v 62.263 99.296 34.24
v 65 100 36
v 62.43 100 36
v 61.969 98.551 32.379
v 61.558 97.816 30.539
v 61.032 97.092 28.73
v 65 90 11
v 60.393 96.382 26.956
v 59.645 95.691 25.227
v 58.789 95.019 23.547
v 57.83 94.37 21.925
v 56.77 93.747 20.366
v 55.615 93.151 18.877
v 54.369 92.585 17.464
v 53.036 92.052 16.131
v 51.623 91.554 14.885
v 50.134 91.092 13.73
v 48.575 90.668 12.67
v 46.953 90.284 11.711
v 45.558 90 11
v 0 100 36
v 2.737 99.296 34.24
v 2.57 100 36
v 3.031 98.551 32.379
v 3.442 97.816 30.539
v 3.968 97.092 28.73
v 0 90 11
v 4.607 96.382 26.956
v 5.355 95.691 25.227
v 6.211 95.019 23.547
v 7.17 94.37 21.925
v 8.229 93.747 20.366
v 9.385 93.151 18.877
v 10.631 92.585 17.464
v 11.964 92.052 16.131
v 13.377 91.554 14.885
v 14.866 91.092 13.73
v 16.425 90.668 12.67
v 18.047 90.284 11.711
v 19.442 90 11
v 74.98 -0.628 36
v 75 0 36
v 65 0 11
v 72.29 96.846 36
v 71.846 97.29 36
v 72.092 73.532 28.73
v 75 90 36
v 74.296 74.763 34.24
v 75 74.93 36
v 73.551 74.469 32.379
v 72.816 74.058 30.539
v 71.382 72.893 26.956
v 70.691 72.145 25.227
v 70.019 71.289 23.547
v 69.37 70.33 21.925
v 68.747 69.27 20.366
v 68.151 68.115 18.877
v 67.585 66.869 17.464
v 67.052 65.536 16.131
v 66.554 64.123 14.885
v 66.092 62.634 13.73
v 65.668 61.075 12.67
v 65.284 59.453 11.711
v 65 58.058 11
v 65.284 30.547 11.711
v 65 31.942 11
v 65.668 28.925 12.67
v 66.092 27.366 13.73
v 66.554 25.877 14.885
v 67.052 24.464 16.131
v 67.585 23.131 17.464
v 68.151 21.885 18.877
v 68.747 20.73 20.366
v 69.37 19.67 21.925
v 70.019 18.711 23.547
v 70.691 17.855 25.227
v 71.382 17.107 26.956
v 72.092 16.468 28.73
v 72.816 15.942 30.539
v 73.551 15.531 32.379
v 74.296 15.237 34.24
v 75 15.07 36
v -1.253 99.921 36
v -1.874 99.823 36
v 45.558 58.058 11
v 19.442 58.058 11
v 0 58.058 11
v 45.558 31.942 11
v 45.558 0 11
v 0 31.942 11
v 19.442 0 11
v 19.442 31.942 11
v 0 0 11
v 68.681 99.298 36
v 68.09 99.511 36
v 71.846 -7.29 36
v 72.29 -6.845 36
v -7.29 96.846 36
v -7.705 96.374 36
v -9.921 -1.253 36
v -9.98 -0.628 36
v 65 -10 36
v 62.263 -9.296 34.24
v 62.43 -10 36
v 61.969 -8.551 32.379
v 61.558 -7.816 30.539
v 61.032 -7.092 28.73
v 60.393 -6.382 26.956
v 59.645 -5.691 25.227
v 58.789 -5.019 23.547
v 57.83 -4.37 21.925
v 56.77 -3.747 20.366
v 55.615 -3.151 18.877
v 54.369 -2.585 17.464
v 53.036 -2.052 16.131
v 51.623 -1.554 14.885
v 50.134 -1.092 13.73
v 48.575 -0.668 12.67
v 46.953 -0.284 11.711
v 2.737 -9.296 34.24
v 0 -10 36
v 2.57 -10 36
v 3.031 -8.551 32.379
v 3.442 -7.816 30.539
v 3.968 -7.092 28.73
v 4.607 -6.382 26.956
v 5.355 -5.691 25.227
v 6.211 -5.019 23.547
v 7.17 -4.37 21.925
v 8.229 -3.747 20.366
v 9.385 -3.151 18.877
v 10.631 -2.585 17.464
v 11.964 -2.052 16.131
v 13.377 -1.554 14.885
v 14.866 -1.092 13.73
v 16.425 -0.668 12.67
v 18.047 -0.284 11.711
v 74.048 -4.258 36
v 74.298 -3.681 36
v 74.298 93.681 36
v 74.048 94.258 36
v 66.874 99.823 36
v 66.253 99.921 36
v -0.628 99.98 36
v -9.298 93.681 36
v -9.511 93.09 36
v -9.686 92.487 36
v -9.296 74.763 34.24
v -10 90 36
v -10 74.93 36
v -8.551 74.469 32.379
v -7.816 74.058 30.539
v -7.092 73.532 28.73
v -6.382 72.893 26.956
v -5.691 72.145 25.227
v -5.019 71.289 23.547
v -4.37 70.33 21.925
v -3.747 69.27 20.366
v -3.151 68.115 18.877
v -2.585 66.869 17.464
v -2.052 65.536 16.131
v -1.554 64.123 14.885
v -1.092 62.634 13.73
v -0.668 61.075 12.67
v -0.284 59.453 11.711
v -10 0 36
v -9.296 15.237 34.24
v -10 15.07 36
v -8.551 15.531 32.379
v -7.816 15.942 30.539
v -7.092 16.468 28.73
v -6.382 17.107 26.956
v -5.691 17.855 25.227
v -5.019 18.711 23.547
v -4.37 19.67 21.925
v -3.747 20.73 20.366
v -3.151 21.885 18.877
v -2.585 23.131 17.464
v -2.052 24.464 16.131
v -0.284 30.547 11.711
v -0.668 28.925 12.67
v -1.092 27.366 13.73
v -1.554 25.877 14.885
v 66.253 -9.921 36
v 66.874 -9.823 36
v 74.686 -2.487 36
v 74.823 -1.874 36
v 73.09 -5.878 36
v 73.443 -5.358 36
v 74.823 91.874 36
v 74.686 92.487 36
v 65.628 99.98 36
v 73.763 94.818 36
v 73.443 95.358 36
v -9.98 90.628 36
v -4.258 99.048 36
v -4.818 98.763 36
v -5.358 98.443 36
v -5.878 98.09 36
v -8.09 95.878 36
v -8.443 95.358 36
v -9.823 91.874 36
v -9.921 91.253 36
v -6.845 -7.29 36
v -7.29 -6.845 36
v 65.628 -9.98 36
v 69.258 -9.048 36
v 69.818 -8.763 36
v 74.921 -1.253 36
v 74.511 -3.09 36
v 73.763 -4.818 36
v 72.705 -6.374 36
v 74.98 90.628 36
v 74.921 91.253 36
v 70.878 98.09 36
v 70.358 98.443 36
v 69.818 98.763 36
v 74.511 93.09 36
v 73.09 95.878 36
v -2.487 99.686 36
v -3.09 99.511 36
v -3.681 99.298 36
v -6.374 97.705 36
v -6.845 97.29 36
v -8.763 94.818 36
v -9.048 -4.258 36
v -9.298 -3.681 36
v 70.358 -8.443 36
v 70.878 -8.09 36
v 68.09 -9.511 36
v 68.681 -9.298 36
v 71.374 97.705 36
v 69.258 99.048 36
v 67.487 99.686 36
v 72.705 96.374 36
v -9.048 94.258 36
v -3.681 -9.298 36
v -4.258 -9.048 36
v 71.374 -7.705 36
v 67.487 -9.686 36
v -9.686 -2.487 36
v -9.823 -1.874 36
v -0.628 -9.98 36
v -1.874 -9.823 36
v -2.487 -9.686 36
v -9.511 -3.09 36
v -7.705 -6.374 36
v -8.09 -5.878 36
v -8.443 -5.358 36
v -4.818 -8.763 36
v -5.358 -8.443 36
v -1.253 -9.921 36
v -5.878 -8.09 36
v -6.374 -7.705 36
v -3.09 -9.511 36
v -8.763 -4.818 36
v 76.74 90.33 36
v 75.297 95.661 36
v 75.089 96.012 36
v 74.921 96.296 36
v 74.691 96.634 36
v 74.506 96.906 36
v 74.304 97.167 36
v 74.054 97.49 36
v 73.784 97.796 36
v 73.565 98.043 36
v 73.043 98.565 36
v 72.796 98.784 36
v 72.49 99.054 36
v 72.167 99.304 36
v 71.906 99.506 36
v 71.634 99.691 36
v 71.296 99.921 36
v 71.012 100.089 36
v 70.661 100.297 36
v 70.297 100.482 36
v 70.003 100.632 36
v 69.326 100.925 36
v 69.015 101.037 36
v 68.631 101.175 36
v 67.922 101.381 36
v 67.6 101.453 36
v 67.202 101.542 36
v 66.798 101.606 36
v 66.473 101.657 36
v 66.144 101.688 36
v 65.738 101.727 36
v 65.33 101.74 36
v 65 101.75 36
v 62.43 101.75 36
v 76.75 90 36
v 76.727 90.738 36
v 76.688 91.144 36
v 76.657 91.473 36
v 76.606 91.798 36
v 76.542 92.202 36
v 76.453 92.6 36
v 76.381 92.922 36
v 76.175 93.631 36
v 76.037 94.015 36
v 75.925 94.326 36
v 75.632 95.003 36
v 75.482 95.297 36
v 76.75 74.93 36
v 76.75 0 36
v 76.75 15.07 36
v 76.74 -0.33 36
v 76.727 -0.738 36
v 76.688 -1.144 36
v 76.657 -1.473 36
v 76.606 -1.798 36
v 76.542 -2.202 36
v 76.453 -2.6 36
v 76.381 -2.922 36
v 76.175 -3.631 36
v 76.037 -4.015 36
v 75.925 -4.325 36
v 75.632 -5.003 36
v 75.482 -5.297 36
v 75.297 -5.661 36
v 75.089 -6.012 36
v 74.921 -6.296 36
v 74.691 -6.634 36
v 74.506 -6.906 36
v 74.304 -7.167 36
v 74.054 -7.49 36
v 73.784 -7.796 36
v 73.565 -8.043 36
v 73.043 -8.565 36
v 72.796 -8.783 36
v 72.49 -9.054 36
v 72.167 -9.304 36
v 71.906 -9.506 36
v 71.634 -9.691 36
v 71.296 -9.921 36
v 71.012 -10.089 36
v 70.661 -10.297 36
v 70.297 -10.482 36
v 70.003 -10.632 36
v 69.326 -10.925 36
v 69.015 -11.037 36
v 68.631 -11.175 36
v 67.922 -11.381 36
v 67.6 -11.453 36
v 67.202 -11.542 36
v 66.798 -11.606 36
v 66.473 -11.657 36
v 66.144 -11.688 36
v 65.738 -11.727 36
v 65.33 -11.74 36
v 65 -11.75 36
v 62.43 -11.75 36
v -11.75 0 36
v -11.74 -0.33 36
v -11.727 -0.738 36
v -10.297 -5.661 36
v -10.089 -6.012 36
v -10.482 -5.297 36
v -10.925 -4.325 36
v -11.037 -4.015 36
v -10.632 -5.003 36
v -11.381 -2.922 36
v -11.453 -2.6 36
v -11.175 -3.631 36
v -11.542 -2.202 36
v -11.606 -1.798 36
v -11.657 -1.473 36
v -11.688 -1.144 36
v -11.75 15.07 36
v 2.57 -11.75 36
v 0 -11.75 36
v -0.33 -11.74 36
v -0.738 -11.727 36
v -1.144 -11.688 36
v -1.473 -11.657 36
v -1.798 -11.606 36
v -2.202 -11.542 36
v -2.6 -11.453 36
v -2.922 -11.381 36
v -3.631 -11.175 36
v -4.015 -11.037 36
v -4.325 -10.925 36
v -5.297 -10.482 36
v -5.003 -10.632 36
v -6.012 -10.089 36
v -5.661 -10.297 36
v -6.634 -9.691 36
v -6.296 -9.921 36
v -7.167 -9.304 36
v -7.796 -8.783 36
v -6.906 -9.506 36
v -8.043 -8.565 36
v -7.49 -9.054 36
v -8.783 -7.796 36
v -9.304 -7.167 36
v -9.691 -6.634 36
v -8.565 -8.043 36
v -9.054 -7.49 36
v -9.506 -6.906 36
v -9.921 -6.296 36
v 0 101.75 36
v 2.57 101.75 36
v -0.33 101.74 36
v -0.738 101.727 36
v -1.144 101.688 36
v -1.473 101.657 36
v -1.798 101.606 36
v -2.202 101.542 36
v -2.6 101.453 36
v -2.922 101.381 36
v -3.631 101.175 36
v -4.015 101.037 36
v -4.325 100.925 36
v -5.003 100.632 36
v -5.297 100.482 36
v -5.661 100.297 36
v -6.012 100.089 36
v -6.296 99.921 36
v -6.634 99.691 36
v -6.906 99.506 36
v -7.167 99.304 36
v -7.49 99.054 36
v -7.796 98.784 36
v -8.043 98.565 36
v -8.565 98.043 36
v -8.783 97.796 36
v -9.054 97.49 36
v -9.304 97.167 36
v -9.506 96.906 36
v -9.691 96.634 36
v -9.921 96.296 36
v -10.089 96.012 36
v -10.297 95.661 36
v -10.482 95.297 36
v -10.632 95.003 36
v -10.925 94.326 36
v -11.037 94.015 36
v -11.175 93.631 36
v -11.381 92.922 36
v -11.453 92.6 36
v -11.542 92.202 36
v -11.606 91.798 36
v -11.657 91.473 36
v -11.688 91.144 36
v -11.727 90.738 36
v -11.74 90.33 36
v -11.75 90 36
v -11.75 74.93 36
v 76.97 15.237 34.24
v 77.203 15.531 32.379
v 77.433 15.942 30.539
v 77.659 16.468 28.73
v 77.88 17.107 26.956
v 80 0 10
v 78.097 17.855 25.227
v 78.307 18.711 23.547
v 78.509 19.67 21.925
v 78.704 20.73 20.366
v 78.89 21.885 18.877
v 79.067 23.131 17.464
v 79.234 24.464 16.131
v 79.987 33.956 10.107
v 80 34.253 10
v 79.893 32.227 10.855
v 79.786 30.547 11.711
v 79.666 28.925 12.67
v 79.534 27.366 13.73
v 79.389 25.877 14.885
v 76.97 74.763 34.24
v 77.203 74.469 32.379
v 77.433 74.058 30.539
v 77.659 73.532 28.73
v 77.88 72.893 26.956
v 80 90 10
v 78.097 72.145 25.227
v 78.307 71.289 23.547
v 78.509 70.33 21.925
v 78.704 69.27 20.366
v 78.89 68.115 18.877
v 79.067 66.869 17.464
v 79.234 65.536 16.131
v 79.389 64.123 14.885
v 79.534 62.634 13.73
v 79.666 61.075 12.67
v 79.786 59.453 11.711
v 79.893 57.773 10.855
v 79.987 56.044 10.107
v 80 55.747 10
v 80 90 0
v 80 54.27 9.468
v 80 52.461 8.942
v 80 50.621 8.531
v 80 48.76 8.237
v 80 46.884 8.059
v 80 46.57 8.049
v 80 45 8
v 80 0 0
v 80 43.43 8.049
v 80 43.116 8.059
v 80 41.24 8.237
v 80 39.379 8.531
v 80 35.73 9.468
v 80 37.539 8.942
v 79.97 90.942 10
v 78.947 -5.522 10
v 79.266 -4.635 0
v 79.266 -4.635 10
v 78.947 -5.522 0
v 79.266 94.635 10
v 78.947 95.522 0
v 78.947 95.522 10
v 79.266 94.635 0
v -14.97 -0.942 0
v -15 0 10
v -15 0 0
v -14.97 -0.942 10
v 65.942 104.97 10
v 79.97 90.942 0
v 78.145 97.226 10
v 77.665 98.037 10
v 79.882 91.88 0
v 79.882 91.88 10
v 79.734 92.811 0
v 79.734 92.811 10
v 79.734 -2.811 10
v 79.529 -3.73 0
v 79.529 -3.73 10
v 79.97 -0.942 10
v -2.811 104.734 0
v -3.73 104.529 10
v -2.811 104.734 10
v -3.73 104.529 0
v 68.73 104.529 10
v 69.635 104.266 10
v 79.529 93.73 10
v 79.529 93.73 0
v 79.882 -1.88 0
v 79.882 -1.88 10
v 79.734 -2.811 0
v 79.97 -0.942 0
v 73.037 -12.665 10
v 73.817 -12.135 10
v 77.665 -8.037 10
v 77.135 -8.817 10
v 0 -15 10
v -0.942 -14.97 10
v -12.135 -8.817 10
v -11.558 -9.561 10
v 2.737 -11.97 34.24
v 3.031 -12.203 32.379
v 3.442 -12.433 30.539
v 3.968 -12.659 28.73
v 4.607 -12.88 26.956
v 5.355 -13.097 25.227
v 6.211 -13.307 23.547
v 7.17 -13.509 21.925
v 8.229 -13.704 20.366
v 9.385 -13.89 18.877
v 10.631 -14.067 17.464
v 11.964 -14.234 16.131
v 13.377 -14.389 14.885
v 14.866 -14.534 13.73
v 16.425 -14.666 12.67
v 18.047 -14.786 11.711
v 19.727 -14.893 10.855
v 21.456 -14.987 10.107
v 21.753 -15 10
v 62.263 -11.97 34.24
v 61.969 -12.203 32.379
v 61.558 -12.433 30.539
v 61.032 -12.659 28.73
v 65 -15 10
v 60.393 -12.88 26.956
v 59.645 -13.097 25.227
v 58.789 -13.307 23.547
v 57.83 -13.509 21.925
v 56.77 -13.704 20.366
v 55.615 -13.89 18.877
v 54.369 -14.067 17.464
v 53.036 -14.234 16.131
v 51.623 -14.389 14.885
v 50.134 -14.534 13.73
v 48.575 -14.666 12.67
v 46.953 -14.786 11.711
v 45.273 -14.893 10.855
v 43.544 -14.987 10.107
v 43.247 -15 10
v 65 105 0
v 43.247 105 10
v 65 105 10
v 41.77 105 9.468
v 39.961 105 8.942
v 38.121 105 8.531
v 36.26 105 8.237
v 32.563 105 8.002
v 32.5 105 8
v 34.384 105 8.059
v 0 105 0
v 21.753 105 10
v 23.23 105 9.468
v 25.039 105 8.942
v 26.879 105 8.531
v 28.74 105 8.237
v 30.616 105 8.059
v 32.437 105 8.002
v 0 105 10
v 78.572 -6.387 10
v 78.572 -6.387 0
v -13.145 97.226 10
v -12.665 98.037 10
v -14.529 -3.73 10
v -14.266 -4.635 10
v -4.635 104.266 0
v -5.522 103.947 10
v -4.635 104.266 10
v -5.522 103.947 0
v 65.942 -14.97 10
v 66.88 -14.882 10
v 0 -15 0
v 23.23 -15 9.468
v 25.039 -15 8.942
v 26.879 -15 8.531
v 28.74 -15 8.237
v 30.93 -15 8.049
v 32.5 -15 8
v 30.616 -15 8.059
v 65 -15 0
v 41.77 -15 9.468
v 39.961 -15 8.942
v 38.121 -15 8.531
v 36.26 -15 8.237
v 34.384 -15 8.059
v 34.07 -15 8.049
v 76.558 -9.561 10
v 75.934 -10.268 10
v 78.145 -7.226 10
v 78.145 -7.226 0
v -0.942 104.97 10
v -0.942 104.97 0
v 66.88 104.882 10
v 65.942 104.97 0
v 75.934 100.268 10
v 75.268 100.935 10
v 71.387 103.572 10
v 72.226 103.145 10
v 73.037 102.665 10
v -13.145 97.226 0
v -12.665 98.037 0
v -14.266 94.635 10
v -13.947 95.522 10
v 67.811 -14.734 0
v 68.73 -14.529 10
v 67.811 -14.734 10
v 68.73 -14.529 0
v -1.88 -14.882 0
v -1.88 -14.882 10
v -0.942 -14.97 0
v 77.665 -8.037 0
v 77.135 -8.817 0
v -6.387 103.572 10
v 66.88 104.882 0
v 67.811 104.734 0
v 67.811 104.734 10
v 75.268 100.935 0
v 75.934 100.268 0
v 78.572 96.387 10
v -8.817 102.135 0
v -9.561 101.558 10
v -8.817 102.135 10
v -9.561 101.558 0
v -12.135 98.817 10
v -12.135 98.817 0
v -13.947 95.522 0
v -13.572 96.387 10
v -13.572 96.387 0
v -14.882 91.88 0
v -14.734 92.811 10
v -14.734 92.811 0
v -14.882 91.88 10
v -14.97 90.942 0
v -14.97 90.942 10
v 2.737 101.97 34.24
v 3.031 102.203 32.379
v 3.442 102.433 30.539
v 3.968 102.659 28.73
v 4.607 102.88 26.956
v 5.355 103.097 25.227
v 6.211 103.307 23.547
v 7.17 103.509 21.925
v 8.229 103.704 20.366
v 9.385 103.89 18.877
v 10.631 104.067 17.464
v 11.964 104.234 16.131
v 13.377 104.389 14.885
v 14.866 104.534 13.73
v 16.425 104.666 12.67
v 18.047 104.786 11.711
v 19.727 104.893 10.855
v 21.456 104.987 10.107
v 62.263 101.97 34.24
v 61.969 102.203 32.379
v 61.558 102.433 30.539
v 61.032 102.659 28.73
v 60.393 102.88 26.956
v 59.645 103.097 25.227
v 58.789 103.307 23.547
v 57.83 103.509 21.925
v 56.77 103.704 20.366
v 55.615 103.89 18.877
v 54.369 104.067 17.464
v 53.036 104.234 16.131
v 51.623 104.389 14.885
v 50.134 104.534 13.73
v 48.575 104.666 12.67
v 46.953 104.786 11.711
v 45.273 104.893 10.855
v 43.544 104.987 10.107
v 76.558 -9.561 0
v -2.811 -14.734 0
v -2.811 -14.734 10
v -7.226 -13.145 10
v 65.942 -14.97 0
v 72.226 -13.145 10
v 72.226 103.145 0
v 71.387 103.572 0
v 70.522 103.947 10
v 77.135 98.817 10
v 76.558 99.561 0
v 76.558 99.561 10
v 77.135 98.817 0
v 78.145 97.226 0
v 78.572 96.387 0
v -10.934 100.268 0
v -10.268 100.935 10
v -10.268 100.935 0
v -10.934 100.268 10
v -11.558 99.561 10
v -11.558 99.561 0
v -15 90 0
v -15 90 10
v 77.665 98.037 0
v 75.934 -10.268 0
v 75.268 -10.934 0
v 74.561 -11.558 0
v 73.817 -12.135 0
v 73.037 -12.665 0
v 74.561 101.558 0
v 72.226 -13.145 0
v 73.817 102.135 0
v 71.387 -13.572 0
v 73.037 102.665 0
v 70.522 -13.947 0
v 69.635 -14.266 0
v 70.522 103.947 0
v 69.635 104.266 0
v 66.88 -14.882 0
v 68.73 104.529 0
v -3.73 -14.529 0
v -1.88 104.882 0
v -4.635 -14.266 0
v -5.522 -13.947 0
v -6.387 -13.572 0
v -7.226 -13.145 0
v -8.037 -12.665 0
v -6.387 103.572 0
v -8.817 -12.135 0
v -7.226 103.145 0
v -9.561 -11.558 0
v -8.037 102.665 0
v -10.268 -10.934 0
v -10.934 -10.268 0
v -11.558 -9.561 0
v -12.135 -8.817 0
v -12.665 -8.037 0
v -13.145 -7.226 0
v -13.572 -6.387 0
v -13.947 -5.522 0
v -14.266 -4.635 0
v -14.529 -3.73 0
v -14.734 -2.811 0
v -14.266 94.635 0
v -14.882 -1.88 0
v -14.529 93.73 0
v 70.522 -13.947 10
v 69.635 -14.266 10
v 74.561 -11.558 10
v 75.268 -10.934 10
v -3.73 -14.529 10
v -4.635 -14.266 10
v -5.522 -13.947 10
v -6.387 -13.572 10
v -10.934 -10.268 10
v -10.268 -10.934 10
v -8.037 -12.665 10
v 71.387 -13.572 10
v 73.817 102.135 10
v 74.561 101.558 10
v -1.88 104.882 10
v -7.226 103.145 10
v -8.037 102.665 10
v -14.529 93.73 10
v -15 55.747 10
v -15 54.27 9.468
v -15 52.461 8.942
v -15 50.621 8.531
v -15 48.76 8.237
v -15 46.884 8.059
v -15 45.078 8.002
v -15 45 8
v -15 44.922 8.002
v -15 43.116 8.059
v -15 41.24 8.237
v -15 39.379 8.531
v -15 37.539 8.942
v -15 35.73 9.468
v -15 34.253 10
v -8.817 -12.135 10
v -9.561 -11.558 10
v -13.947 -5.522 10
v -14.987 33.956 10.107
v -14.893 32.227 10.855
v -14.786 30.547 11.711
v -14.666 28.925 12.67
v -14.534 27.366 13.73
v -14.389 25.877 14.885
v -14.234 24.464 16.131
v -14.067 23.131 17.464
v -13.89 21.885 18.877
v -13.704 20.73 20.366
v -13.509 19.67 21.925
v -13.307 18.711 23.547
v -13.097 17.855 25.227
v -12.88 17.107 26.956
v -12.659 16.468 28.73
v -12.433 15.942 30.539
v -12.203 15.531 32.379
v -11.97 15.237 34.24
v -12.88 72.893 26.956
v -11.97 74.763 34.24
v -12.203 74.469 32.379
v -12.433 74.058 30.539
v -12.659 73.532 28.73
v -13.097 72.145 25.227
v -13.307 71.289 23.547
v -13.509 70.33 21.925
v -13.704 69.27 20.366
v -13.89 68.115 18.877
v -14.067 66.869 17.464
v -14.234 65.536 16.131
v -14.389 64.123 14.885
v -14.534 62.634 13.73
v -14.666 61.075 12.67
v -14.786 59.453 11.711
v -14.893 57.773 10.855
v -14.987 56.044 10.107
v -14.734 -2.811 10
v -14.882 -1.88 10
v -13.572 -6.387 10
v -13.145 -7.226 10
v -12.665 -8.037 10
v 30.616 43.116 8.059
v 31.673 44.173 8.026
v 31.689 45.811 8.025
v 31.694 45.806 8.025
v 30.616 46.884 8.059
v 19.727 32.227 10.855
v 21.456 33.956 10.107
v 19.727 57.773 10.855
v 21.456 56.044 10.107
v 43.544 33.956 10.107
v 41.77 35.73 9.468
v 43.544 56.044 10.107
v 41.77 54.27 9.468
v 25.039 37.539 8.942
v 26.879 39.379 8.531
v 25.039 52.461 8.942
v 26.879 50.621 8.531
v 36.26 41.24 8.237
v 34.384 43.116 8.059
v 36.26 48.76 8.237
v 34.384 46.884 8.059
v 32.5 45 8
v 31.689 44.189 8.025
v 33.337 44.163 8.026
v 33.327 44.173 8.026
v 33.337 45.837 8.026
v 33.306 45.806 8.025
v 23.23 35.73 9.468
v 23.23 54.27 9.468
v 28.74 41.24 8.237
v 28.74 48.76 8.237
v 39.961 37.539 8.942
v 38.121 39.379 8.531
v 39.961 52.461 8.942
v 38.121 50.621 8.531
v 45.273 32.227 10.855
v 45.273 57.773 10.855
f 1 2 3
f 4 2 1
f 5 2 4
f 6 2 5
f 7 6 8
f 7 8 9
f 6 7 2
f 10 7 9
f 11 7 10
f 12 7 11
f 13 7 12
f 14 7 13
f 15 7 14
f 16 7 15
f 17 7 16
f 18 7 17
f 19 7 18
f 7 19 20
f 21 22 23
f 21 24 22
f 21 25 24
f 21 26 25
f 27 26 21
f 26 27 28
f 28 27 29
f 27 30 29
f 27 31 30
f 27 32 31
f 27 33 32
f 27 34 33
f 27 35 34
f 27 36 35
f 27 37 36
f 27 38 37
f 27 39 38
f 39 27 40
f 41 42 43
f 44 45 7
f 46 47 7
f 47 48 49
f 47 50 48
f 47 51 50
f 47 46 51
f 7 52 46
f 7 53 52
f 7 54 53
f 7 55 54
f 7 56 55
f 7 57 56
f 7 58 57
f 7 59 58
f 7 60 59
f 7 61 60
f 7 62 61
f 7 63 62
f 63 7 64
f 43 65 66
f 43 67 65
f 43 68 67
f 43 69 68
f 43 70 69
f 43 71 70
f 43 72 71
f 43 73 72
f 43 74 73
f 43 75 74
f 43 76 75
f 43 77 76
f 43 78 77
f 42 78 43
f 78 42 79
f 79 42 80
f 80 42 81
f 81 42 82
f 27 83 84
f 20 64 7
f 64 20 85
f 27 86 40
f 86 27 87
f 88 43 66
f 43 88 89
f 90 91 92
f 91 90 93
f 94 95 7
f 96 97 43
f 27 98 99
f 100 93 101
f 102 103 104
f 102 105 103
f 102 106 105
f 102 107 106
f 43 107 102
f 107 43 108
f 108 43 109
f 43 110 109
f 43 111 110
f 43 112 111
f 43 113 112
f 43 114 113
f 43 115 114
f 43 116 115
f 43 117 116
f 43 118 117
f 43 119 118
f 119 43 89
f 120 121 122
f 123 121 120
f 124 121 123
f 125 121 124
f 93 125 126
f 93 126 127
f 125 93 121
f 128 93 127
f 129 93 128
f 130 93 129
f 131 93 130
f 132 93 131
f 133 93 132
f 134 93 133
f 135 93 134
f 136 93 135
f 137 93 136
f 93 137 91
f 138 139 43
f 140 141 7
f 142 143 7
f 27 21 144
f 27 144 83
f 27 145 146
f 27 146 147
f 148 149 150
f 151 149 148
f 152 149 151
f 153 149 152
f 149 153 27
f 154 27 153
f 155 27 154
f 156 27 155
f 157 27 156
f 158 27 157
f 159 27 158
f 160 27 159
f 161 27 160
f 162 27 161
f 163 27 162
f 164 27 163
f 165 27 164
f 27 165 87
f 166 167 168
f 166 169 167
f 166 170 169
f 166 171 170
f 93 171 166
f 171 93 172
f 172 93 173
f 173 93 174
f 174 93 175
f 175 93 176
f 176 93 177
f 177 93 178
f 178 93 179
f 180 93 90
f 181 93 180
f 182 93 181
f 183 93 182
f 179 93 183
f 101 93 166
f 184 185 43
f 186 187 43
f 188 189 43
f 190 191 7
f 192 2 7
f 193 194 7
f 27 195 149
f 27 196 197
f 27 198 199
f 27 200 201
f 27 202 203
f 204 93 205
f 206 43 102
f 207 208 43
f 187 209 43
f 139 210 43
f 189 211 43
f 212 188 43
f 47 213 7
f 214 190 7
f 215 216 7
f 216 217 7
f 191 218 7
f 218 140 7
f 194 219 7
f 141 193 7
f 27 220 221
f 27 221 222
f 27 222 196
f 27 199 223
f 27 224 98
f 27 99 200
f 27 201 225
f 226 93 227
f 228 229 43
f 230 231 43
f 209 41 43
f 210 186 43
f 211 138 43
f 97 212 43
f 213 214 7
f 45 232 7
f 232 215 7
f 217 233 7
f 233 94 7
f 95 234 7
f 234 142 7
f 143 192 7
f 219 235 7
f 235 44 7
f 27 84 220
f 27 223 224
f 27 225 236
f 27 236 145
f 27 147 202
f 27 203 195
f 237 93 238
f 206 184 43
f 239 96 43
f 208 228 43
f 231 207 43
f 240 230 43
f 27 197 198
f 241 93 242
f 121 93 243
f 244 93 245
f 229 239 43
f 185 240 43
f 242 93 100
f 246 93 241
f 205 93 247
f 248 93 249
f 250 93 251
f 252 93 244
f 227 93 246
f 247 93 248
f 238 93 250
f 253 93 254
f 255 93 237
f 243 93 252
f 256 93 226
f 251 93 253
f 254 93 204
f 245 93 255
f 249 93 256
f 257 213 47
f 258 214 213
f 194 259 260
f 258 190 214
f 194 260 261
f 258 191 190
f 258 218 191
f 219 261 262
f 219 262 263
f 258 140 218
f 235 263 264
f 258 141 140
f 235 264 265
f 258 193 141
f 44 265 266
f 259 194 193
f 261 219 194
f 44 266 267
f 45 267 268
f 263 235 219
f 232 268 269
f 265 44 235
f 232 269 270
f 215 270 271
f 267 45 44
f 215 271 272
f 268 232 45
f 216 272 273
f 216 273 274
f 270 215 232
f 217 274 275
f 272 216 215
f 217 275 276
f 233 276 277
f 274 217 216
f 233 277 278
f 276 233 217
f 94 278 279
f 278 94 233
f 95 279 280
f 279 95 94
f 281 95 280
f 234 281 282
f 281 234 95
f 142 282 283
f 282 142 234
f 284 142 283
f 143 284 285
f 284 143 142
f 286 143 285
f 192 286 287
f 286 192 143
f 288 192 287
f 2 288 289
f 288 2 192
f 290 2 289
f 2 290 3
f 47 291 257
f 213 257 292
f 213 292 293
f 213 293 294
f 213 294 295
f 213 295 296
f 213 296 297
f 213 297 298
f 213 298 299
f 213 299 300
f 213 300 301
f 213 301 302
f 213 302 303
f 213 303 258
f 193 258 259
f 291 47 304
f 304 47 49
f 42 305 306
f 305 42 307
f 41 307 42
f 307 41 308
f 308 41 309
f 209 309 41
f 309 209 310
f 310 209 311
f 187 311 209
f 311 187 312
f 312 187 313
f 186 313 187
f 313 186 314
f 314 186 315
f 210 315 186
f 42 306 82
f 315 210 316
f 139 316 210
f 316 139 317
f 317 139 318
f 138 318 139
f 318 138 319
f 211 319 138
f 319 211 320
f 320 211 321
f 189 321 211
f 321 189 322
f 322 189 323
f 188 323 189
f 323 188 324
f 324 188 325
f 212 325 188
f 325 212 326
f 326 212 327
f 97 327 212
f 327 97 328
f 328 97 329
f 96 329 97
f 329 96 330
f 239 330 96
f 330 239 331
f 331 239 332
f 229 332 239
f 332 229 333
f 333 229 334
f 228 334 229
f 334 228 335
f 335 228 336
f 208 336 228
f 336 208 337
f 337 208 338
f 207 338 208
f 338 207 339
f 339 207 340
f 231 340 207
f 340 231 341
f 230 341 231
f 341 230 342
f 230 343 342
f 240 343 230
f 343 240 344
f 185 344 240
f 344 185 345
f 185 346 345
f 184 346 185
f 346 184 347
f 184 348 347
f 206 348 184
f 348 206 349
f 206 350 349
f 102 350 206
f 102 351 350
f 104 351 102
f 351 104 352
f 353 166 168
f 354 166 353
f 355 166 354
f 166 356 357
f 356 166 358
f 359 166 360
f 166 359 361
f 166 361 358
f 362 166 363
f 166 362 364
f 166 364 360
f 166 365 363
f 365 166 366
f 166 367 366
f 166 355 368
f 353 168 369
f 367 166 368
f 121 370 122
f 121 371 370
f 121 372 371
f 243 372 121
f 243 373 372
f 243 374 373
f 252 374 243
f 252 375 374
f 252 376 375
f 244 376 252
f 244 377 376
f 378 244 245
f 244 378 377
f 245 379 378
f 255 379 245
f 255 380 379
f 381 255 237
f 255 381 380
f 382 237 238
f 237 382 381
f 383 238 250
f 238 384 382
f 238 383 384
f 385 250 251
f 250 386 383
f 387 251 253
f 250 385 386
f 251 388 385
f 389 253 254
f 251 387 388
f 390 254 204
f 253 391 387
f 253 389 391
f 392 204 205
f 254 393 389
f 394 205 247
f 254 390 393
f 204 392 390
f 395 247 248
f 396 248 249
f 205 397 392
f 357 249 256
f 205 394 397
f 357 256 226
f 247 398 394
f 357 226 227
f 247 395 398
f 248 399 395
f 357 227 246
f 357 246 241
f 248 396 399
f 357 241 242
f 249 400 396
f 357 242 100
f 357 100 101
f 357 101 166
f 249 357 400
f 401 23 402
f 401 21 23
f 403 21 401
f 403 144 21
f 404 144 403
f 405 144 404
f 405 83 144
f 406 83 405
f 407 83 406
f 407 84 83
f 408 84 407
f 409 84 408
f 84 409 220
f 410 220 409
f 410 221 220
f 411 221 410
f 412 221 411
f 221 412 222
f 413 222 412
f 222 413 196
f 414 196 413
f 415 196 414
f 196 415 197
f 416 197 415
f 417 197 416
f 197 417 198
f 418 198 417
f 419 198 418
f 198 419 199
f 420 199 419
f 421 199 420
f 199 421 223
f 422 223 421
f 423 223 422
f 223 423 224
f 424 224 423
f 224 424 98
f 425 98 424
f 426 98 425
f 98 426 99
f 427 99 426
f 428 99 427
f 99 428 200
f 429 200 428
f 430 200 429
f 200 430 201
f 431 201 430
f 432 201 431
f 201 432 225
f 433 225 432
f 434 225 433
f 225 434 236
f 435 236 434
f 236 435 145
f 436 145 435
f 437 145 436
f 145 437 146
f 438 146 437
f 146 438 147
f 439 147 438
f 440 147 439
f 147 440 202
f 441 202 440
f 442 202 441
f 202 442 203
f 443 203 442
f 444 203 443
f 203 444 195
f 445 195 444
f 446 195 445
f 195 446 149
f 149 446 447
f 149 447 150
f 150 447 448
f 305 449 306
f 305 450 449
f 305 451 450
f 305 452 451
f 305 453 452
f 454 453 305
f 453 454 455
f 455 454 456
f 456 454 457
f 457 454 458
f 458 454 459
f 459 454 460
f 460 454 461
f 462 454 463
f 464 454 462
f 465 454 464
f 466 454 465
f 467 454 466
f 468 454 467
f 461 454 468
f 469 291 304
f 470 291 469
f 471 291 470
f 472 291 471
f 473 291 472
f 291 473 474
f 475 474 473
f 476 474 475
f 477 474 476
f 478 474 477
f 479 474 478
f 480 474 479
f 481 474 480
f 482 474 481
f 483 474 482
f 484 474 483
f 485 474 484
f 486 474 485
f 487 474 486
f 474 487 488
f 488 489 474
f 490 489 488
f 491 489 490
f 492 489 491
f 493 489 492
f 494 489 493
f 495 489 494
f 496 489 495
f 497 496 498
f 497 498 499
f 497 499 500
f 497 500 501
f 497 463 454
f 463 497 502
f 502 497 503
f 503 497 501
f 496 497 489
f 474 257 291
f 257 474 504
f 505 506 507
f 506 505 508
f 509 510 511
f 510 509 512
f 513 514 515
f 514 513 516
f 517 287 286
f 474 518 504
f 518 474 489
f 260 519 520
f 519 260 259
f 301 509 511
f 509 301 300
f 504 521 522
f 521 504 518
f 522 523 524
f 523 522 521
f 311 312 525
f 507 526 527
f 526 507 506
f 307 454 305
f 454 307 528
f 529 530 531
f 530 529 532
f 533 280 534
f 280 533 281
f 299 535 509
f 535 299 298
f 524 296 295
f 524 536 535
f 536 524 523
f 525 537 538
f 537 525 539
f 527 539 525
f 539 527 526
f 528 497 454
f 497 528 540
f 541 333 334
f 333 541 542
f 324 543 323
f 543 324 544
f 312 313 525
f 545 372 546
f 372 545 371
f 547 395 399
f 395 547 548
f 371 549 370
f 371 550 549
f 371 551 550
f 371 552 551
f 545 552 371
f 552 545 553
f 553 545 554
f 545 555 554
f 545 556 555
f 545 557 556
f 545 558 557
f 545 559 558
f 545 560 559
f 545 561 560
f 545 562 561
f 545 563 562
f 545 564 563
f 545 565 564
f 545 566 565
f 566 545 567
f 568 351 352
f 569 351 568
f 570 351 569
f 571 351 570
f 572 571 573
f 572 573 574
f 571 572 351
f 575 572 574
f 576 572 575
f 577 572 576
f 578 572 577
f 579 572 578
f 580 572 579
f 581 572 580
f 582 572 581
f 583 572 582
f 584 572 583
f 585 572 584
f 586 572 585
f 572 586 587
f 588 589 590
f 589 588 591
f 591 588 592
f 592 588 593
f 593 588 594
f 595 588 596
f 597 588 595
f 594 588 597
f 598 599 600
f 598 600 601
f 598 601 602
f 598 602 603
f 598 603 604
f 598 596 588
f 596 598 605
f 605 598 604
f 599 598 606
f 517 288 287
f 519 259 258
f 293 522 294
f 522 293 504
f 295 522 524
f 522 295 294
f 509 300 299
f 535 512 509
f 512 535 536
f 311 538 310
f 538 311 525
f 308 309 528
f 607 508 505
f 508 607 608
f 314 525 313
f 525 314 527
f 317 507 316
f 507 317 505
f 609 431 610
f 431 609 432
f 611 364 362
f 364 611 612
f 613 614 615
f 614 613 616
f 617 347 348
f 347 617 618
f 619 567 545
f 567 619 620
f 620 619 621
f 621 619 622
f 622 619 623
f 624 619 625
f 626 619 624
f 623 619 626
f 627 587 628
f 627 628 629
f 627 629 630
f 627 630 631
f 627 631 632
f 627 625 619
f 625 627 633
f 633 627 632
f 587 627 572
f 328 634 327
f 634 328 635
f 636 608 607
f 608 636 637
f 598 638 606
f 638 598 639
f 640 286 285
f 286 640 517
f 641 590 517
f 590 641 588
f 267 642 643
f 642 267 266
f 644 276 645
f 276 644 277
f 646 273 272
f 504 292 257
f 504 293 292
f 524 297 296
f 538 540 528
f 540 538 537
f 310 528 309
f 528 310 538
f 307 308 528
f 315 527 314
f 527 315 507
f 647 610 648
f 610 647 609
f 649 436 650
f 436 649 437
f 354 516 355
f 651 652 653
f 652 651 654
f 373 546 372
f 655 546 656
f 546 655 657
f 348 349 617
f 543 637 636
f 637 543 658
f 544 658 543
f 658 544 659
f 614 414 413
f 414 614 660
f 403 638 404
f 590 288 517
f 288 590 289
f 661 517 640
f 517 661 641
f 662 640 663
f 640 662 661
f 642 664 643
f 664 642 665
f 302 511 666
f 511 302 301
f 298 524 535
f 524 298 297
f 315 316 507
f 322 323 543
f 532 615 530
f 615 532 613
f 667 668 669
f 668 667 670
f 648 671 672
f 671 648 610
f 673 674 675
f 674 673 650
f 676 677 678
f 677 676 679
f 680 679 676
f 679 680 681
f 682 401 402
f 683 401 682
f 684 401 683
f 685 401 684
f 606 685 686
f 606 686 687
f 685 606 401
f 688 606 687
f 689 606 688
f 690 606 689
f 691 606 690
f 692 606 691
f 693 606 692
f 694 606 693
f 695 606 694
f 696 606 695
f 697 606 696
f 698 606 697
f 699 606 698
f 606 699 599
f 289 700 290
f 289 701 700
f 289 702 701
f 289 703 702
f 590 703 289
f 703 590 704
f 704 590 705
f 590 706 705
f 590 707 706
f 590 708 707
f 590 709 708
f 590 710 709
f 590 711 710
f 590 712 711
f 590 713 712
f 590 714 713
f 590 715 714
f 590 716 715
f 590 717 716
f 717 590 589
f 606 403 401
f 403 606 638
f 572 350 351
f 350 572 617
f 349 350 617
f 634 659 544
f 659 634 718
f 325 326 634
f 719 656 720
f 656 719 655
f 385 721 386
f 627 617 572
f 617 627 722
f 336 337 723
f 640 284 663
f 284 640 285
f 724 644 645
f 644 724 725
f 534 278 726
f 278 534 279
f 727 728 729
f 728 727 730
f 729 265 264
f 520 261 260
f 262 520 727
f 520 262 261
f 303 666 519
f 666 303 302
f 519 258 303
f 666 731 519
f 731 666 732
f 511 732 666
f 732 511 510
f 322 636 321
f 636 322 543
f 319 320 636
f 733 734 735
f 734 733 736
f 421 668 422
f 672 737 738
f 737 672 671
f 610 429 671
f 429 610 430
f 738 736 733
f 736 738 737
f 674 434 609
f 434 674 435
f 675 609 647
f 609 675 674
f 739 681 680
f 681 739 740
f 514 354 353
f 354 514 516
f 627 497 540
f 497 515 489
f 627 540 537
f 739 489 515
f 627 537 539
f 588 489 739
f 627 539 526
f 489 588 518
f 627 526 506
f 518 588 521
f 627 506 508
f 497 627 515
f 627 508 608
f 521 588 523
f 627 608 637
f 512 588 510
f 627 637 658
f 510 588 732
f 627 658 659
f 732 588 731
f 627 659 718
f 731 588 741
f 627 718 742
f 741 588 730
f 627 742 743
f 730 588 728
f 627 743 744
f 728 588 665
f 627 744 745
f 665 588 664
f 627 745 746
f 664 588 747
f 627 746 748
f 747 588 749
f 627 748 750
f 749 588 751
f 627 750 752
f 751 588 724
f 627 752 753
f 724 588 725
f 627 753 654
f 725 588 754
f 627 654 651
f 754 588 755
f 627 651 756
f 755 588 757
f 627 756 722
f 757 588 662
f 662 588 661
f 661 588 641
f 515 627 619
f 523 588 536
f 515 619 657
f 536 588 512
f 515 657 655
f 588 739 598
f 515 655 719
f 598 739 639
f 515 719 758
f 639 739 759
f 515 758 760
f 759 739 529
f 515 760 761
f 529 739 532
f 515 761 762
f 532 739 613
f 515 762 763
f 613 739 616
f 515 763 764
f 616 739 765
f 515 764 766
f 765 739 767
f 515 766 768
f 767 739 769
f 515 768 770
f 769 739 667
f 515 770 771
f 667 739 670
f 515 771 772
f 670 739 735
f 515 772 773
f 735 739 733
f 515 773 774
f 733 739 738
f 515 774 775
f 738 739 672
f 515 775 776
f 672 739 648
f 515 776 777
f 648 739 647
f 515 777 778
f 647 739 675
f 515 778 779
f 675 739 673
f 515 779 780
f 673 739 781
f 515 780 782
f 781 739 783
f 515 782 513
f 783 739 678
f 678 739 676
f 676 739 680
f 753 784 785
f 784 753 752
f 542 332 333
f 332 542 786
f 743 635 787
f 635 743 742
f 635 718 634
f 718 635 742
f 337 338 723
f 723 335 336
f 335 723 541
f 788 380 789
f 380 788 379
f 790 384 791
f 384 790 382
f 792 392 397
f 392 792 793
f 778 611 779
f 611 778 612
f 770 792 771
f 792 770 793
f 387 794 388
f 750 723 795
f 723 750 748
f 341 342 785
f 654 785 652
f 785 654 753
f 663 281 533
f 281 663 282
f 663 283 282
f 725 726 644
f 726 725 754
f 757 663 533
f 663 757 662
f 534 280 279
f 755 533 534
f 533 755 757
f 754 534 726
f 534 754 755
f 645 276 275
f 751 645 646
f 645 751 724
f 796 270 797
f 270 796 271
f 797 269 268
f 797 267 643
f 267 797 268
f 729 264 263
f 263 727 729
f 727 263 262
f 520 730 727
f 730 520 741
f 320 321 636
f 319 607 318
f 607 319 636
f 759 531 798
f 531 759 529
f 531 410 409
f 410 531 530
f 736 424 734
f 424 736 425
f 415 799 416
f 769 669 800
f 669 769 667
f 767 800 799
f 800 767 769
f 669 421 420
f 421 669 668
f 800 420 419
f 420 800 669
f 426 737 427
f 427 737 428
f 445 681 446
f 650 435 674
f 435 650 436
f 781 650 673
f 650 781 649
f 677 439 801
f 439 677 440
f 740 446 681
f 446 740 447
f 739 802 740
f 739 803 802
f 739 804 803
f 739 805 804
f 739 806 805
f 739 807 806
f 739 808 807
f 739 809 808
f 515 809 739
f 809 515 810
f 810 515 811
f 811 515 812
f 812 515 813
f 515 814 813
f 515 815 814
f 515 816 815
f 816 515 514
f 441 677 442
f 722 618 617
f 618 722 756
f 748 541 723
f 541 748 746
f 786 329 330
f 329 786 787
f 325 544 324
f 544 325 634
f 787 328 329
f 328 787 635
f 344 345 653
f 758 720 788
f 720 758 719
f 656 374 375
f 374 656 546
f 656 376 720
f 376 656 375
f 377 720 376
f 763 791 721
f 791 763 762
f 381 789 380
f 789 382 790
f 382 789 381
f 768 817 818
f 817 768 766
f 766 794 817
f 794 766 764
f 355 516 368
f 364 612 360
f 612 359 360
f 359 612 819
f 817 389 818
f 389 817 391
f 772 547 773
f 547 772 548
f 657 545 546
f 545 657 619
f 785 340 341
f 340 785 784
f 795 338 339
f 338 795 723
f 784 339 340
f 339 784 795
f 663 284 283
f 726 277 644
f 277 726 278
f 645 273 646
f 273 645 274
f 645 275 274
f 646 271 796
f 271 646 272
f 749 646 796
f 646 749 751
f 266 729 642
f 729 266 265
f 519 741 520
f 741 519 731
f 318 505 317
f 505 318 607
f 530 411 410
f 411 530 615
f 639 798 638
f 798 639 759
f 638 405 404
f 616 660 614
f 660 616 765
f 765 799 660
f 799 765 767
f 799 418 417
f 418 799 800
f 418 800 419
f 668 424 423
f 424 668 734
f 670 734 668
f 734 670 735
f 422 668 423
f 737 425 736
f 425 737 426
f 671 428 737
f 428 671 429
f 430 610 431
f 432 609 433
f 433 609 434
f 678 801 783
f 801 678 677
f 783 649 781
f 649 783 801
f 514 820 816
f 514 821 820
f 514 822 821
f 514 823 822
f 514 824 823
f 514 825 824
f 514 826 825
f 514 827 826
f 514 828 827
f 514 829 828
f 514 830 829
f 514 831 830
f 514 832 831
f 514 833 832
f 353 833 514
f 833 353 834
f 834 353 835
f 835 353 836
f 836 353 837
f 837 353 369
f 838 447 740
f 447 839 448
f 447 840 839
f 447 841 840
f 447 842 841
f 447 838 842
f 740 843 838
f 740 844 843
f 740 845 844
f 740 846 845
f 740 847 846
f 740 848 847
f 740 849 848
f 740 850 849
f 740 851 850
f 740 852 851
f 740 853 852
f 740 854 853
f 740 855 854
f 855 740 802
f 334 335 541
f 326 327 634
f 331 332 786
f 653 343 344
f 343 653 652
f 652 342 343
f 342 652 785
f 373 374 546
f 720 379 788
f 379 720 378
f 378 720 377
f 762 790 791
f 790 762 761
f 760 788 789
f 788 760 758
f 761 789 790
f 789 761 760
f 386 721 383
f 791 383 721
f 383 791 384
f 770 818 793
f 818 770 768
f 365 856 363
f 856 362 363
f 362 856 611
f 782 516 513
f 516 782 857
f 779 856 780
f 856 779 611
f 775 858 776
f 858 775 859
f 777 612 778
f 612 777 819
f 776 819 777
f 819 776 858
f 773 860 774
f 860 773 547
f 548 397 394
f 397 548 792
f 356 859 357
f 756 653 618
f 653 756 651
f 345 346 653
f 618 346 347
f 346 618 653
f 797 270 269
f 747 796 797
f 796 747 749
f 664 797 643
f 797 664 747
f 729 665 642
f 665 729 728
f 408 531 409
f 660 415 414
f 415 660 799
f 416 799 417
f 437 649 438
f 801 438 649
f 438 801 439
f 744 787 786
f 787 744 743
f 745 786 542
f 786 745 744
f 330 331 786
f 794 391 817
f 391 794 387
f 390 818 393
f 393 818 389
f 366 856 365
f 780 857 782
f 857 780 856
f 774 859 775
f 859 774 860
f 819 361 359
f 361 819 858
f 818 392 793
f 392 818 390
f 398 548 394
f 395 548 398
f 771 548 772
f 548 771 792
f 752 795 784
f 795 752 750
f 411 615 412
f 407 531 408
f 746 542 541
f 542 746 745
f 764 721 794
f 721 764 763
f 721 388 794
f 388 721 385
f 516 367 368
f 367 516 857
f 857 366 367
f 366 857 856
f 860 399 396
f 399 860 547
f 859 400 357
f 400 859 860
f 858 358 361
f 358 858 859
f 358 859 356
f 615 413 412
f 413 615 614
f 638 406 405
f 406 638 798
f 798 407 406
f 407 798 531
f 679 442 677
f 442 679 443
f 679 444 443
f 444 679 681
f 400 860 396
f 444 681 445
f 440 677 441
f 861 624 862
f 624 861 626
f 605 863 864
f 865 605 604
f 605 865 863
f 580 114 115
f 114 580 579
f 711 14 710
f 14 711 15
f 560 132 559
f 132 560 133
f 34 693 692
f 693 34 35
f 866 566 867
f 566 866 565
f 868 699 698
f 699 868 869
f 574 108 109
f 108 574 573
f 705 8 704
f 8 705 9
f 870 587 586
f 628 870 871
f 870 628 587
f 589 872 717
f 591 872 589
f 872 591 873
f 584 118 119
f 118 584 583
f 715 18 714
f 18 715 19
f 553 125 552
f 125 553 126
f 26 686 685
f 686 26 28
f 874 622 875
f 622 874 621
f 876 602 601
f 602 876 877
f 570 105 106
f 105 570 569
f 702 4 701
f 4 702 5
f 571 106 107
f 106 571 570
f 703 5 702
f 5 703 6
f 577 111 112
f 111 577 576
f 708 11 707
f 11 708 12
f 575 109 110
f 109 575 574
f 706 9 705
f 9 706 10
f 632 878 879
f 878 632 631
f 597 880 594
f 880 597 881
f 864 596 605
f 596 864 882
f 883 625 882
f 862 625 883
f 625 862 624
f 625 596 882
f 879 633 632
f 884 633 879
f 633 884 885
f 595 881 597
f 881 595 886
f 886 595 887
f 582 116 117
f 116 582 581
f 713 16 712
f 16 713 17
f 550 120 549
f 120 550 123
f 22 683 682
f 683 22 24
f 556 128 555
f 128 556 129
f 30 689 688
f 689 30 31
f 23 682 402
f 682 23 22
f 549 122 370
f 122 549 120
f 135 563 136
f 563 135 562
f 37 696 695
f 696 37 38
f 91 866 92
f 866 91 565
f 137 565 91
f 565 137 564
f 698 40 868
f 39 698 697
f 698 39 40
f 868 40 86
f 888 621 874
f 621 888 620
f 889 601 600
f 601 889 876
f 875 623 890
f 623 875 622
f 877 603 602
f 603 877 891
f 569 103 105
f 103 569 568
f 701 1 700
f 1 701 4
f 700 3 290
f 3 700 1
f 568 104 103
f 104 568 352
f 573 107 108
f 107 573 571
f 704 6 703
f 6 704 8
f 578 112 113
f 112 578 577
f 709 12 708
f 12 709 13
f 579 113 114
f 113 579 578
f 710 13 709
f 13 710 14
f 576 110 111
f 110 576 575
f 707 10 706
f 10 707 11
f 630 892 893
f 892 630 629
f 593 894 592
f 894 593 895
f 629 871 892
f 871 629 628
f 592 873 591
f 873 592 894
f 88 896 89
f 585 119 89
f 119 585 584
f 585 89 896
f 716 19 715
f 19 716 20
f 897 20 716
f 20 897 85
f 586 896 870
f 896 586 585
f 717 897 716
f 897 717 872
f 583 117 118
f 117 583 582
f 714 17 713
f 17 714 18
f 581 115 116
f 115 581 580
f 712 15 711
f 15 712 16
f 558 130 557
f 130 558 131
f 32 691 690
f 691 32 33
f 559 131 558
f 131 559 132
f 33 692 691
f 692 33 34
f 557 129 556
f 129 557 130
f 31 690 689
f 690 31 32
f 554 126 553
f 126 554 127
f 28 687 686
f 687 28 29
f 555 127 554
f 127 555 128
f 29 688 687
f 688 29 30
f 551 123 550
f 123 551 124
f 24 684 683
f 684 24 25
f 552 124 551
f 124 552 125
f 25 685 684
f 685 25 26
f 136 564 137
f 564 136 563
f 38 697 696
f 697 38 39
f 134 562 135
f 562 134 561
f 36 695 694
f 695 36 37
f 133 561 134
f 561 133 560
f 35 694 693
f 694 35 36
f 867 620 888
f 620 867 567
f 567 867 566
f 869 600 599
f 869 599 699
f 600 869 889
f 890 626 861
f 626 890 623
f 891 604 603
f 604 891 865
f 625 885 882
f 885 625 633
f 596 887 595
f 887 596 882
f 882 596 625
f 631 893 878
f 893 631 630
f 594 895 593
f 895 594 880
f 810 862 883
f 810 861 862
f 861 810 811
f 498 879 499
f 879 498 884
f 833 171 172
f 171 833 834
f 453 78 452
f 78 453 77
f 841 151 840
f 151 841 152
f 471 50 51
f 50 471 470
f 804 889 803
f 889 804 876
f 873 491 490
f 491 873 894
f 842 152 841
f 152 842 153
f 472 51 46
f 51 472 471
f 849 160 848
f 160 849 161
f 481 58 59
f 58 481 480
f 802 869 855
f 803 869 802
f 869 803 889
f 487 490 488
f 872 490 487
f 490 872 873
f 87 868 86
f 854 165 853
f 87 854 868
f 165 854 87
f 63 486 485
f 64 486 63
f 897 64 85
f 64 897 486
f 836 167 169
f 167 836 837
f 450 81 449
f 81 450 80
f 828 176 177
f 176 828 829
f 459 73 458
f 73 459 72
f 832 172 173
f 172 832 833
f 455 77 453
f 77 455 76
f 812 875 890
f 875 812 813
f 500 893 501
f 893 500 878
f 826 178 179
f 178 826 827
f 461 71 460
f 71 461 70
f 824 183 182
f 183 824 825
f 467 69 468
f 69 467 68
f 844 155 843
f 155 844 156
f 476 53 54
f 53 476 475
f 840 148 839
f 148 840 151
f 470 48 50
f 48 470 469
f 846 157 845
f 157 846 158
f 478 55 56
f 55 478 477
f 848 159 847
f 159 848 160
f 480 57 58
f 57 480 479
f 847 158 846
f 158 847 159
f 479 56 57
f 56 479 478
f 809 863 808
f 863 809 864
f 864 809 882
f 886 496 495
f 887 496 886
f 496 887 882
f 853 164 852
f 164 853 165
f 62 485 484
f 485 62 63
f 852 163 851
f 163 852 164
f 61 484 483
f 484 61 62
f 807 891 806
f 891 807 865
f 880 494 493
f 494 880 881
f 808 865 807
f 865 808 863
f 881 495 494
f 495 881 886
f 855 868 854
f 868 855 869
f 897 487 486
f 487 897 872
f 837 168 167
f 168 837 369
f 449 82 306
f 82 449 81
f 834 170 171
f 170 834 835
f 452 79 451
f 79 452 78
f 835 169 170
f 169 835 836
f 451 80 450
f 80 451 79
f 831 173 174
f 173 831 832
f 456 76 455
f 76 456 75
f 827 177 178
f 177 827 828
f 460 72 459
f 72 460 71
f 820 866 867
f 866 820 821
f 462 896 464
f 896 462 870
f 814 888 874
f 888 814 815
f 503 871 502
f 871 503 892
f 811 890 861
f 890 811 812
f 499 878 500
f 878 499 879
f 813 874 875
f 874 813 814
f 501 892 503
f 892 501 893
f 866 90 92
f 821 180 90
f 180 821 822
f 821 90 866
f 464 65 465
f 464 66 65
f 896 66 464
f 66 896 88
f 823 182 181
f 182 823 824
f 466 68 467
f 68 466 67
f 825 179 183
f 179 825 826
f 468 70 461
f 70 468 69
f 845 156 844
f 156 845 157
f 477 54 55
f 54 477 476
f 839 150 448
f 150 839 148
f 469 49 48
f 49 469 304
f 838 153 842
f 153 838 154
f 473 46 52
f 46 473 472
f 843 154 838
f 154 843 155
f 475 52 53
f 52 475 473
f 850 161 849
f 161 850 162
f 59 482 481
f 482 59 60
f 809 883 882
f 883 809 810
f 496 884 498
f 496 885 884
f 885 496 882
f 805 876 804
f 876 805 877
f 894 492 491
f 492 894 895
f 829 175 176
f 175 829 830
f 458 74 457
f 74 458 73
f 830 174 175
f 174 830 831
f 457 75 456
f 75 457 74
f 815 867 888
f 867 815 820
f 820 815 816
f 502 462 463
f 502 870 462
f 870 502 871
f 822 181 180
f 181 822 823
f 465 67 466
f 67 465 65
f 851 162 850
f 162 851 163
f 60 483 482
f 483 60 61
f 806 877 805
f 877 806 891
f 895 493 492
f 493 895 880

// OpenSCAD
module cell (){
difference(){
    difference(){
        minkowski(){
            cube([65,90,10]);
            cylinder(40,d1=30,d2=20);
        }        
        translate([0,0,11]){
            union(){
                minkowski(){
                    cube([65,90,10]);
                    cylinder(25,d1=0,d2=20);
                }
                translate([-12.5,-15,25]){
                    cube([90,120,20]);
                }
            }
        }
    }
    union(){
        translate([32.5,-40,38]){
            rotate([270,0,0]){
                cylinder(150,d=60);
            }
        }
        translate([100,45,38]){
            rotate([270,0,90]){
                cylinder(120,d=60);
            }
        }
    }
}
}

$fn=100;
/*
union(){
    cell();
    translate([85,0,0]){
        cell();
    }
}
*/
cell();
